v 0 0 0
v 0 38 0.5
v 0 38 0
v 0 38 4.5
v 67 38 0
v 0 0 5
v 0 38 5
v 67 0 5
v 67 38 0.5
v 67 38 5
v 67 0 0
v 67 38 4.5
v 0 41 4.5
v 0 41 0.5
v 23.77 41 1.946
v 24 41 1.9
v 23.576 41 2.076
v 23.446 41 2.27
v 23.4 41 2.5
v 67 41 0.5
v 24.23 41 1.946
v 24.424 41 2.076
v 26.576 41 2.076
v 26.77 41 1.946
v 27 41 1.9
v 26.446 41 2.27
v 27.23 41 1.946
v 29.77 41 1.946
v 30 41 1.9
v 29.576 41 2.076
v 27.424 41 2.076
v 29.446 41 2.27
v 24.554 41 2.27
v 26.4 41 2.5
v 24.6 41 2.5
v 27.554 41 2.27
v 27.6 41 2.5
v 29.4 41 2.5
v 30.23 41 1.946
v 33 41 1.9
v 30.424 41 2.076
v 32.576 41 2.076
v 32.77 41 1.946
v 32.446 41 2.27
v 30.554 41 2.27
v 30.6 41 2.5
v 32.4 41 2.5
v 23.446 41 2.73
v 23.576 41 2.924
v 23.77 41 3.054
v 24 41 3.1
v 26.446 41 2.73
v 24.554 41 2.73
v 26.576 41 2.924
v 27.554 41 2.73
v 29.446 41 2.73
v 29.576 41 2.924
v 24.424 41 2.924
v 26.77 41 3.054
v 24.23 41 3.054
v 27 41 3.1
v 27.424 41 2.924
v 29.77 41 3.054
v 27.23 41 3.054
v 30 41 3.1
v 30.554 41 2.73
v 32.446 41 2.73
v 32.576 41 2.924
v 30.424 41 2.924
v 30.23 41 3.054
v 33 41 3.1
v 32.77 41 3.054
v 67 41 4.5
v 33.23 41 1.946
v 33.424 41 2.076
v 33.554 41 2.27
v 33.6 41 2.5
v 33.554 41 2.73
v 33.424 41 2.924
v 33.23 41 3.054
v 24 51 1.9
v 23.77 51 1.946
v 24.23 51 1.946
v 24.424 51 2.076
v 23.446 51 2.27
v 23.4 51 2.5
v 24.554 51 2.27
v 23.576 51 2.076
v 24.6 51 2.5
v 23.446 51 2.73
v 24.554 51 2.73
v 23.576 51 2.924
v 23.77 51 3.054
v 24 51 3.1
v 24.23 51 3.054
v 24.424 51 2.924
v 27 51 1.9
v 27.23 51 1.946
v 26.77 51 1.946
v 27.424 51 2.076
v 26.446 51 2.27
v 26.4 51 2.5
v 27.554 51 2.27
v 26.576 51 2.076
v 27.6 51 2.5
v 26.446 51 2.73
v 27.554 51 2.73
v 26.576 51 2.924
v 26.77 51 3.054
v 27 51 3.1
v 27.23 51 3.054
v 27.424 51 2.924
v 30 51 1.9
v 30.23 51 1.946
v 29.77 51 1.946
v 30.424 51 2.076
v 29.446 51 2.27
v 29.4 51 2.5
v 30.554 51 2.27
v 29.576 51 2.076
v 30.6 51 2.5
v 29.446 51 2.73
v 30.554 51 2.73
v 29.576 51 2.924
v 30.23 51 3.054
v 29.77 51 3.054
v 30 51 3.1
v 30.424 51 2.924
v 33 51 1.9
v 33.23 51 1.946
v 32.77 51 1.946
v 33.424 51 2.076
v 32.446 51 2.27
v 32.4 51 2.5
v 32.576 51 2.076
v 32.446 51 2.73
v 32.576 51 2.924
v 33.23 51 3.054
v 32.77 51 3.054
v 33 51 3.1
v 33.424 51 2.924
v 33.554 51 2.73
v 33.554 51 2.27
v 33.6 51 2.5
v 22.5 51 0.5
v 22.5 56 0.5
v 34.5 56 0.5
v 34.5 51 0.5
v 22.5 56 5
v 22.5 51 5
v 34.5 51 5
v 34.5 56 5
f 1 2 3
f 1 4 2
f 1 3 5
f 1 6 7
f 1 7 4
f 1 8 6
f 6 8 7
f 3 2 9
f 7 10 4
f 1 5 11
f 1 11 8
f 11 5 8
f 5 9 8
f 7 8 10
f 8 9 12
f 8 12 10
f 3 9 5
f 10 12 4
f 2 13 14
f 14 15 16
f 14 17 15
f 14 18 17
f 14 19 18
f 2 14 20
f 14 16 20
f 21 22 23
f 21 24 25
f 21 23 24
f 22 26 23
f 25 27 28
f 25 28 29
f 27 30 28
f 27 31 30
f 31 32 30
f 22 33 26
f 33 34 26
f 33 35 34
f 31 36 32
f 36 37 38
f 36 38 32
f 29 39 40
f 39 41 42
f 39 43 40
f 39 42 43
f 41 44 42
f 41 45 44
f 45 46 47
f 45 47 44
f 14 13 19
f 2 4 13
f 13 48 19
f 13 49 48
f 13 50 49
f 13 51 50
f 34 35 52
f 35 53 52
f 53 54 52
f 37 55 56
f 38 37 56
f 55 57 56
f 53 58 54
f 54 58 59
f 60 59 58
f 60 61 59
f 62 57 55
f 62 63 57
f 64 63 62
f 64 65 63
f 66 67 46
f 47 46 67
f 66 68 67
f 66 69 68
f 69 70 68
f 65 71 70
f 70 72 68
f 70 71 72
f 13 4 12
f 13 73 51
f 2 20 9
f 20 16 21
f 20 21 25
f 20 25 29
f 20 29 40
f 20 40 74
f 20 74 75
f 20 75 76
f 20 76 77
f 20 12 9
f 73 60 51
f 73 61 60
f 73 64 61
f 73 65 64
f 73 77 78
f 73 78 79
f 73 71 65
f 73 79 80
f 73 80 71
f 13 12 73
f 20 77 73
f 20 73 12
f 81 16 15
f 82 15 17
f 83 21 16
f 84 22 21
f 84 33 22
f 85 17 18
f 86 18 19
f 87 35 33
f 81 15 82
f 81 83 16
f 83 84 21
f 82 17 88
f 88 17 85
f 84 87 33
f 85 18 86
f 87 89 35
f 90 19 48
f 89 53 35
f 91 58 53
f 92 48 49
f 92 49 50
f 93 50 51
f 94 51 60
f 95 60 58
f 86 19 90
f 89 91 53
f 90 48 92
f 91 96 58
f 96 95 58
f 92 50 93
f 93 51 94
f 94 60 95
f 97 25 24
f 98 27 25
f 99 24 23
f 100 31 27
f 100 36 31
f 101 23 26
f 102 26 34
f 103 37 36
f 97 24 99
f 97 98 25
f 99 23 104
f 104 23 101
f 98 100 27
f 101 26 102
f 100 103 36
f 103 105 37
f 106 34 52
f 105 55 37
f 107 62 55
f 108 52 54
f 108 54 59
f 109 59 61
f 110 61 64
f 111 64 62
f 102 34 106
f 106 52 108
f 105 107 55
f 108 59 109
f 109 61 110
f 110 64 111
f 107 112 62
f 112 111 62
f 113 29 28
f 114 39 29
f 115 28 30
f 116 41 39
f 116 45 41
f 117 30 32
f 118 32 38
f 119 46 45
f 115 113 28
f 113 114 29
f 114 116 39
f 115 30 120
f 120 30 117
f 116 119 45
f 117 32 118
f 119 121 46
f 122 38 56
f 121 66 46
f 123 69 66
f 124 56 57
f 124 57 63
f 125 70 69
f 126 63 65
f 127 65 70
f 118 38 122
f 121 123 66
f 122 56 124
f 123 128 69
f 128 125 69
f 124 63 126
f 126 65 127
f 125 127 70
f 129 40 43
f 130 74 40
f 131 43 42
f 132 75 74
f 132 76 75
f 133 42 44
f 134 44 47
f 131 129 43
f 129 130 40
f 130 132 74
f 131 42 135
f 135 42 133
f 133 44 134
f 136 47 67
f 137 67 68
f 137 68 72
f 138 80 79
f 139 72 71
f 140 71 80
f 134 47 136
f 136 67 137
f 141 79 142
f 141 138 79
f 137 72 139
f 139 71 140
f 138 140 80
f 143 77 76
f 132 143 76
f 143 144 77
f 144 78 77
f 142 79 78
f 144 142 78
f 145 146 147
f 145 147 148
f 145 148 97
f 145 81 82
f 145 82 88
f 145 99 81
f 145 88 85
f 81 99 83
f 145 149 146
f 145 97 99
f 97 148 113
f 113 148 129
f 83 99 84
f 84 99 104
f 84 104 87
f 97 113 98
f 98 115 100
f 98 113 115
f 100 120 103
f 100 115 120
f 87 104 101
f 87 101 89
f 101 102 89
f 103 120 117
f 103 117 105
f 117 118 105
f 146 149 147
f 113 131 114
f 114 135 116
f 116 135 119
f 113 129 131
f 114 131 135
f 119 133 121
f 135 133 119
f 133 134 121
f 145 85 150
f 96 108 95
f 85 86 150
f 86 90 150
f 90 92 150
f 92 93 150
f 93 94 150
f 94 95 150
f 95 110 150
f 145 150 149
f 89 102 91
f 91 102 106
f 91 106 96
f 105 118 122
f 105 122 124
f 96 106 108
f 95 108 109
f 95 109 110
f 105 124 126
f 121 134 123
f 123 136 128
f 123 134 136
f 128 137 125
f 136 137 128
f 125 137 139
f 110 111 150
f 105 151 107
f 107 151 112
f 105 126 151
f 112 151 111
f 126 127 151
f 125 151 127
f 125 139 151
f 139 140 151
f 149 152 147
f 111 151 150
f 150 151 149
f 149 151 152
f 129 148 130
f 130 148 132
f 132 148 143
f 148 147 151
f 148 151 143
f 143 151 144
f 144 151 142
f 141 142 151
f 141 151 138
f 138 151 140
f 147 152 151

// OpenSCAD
// =============================================================================
// OpenMotorBridge - Dummy 3D Model: 1S LiPo Backup Battery (2200 mAh Flat Cell)
// =============================================================================
// File: hardware/cad/scad/00_common/dummies/dummy_lipo_battery.scad
// Description: 3D model of the 2200 mAh ultra-flat LiPo pouch cell (504068 / 503870)
//              with integrated PCM protection board, silicone wiring harness,
//              and Molex Micro-Lock Plus 1.25mm 4-Pin vertical mating plug (J5).
// =============================================================================

include <../parameters.scad>;

module dummy_lipo_battery() {
    // 1. Pouch Cell Body (Ultra-flat silver/blue sleeve, 67 x 38 x 5.0 mm)
    color("dodgerblue")
        cube(size=[67.0, 38.0, 5.0], center=false);

    // 2. Integrated PCM Protection Board (Edge strip)
    color("dimgray")
        translate([0.0, 38.0, 0.5])
            cube(size=[67.0, 3.0, 4.0], center=false);

    // 3. Silicone Output Wires (Red: PWR+, Black: PWR-, Yellow: NTC+, Blue: NTC GND)
    color("red")
        translate([24.0, 41.0, 2.5])
            rotate([-90, 0, 0])
                cylinder(r=0.6, h=10.0, $fn=16);

    color("black")
        translate([27.0, 41.0, 2.5])
            rotate([-90, 0, 0])
                cylinder(r=0.6, h=10.0, $fn=16);

    color("gold")
        translate([30.0, 41.0, 2.5])
            rotate([-90, 0, 0])
                cylinder(r=0.6, h=10.0, $fn=16);

    color("deepskyblue")
        translate([33.0, 41.0, 2.5])
            rotate([-90, 0, 0])
                cylinder(r=0.6, h=10.0, $fn=16);

    // 4. Molex Micro-Lock Plus 1.25mm 4-Pin Plug (Mates to PCBA 01 J5)
    color("ivory")
        translate([22.5, 51.0, 0.5])
            cube(size=[12.0, 5.0, 4.5], center=false);
}

// Preview standalone
dummy_lipo_battery();
